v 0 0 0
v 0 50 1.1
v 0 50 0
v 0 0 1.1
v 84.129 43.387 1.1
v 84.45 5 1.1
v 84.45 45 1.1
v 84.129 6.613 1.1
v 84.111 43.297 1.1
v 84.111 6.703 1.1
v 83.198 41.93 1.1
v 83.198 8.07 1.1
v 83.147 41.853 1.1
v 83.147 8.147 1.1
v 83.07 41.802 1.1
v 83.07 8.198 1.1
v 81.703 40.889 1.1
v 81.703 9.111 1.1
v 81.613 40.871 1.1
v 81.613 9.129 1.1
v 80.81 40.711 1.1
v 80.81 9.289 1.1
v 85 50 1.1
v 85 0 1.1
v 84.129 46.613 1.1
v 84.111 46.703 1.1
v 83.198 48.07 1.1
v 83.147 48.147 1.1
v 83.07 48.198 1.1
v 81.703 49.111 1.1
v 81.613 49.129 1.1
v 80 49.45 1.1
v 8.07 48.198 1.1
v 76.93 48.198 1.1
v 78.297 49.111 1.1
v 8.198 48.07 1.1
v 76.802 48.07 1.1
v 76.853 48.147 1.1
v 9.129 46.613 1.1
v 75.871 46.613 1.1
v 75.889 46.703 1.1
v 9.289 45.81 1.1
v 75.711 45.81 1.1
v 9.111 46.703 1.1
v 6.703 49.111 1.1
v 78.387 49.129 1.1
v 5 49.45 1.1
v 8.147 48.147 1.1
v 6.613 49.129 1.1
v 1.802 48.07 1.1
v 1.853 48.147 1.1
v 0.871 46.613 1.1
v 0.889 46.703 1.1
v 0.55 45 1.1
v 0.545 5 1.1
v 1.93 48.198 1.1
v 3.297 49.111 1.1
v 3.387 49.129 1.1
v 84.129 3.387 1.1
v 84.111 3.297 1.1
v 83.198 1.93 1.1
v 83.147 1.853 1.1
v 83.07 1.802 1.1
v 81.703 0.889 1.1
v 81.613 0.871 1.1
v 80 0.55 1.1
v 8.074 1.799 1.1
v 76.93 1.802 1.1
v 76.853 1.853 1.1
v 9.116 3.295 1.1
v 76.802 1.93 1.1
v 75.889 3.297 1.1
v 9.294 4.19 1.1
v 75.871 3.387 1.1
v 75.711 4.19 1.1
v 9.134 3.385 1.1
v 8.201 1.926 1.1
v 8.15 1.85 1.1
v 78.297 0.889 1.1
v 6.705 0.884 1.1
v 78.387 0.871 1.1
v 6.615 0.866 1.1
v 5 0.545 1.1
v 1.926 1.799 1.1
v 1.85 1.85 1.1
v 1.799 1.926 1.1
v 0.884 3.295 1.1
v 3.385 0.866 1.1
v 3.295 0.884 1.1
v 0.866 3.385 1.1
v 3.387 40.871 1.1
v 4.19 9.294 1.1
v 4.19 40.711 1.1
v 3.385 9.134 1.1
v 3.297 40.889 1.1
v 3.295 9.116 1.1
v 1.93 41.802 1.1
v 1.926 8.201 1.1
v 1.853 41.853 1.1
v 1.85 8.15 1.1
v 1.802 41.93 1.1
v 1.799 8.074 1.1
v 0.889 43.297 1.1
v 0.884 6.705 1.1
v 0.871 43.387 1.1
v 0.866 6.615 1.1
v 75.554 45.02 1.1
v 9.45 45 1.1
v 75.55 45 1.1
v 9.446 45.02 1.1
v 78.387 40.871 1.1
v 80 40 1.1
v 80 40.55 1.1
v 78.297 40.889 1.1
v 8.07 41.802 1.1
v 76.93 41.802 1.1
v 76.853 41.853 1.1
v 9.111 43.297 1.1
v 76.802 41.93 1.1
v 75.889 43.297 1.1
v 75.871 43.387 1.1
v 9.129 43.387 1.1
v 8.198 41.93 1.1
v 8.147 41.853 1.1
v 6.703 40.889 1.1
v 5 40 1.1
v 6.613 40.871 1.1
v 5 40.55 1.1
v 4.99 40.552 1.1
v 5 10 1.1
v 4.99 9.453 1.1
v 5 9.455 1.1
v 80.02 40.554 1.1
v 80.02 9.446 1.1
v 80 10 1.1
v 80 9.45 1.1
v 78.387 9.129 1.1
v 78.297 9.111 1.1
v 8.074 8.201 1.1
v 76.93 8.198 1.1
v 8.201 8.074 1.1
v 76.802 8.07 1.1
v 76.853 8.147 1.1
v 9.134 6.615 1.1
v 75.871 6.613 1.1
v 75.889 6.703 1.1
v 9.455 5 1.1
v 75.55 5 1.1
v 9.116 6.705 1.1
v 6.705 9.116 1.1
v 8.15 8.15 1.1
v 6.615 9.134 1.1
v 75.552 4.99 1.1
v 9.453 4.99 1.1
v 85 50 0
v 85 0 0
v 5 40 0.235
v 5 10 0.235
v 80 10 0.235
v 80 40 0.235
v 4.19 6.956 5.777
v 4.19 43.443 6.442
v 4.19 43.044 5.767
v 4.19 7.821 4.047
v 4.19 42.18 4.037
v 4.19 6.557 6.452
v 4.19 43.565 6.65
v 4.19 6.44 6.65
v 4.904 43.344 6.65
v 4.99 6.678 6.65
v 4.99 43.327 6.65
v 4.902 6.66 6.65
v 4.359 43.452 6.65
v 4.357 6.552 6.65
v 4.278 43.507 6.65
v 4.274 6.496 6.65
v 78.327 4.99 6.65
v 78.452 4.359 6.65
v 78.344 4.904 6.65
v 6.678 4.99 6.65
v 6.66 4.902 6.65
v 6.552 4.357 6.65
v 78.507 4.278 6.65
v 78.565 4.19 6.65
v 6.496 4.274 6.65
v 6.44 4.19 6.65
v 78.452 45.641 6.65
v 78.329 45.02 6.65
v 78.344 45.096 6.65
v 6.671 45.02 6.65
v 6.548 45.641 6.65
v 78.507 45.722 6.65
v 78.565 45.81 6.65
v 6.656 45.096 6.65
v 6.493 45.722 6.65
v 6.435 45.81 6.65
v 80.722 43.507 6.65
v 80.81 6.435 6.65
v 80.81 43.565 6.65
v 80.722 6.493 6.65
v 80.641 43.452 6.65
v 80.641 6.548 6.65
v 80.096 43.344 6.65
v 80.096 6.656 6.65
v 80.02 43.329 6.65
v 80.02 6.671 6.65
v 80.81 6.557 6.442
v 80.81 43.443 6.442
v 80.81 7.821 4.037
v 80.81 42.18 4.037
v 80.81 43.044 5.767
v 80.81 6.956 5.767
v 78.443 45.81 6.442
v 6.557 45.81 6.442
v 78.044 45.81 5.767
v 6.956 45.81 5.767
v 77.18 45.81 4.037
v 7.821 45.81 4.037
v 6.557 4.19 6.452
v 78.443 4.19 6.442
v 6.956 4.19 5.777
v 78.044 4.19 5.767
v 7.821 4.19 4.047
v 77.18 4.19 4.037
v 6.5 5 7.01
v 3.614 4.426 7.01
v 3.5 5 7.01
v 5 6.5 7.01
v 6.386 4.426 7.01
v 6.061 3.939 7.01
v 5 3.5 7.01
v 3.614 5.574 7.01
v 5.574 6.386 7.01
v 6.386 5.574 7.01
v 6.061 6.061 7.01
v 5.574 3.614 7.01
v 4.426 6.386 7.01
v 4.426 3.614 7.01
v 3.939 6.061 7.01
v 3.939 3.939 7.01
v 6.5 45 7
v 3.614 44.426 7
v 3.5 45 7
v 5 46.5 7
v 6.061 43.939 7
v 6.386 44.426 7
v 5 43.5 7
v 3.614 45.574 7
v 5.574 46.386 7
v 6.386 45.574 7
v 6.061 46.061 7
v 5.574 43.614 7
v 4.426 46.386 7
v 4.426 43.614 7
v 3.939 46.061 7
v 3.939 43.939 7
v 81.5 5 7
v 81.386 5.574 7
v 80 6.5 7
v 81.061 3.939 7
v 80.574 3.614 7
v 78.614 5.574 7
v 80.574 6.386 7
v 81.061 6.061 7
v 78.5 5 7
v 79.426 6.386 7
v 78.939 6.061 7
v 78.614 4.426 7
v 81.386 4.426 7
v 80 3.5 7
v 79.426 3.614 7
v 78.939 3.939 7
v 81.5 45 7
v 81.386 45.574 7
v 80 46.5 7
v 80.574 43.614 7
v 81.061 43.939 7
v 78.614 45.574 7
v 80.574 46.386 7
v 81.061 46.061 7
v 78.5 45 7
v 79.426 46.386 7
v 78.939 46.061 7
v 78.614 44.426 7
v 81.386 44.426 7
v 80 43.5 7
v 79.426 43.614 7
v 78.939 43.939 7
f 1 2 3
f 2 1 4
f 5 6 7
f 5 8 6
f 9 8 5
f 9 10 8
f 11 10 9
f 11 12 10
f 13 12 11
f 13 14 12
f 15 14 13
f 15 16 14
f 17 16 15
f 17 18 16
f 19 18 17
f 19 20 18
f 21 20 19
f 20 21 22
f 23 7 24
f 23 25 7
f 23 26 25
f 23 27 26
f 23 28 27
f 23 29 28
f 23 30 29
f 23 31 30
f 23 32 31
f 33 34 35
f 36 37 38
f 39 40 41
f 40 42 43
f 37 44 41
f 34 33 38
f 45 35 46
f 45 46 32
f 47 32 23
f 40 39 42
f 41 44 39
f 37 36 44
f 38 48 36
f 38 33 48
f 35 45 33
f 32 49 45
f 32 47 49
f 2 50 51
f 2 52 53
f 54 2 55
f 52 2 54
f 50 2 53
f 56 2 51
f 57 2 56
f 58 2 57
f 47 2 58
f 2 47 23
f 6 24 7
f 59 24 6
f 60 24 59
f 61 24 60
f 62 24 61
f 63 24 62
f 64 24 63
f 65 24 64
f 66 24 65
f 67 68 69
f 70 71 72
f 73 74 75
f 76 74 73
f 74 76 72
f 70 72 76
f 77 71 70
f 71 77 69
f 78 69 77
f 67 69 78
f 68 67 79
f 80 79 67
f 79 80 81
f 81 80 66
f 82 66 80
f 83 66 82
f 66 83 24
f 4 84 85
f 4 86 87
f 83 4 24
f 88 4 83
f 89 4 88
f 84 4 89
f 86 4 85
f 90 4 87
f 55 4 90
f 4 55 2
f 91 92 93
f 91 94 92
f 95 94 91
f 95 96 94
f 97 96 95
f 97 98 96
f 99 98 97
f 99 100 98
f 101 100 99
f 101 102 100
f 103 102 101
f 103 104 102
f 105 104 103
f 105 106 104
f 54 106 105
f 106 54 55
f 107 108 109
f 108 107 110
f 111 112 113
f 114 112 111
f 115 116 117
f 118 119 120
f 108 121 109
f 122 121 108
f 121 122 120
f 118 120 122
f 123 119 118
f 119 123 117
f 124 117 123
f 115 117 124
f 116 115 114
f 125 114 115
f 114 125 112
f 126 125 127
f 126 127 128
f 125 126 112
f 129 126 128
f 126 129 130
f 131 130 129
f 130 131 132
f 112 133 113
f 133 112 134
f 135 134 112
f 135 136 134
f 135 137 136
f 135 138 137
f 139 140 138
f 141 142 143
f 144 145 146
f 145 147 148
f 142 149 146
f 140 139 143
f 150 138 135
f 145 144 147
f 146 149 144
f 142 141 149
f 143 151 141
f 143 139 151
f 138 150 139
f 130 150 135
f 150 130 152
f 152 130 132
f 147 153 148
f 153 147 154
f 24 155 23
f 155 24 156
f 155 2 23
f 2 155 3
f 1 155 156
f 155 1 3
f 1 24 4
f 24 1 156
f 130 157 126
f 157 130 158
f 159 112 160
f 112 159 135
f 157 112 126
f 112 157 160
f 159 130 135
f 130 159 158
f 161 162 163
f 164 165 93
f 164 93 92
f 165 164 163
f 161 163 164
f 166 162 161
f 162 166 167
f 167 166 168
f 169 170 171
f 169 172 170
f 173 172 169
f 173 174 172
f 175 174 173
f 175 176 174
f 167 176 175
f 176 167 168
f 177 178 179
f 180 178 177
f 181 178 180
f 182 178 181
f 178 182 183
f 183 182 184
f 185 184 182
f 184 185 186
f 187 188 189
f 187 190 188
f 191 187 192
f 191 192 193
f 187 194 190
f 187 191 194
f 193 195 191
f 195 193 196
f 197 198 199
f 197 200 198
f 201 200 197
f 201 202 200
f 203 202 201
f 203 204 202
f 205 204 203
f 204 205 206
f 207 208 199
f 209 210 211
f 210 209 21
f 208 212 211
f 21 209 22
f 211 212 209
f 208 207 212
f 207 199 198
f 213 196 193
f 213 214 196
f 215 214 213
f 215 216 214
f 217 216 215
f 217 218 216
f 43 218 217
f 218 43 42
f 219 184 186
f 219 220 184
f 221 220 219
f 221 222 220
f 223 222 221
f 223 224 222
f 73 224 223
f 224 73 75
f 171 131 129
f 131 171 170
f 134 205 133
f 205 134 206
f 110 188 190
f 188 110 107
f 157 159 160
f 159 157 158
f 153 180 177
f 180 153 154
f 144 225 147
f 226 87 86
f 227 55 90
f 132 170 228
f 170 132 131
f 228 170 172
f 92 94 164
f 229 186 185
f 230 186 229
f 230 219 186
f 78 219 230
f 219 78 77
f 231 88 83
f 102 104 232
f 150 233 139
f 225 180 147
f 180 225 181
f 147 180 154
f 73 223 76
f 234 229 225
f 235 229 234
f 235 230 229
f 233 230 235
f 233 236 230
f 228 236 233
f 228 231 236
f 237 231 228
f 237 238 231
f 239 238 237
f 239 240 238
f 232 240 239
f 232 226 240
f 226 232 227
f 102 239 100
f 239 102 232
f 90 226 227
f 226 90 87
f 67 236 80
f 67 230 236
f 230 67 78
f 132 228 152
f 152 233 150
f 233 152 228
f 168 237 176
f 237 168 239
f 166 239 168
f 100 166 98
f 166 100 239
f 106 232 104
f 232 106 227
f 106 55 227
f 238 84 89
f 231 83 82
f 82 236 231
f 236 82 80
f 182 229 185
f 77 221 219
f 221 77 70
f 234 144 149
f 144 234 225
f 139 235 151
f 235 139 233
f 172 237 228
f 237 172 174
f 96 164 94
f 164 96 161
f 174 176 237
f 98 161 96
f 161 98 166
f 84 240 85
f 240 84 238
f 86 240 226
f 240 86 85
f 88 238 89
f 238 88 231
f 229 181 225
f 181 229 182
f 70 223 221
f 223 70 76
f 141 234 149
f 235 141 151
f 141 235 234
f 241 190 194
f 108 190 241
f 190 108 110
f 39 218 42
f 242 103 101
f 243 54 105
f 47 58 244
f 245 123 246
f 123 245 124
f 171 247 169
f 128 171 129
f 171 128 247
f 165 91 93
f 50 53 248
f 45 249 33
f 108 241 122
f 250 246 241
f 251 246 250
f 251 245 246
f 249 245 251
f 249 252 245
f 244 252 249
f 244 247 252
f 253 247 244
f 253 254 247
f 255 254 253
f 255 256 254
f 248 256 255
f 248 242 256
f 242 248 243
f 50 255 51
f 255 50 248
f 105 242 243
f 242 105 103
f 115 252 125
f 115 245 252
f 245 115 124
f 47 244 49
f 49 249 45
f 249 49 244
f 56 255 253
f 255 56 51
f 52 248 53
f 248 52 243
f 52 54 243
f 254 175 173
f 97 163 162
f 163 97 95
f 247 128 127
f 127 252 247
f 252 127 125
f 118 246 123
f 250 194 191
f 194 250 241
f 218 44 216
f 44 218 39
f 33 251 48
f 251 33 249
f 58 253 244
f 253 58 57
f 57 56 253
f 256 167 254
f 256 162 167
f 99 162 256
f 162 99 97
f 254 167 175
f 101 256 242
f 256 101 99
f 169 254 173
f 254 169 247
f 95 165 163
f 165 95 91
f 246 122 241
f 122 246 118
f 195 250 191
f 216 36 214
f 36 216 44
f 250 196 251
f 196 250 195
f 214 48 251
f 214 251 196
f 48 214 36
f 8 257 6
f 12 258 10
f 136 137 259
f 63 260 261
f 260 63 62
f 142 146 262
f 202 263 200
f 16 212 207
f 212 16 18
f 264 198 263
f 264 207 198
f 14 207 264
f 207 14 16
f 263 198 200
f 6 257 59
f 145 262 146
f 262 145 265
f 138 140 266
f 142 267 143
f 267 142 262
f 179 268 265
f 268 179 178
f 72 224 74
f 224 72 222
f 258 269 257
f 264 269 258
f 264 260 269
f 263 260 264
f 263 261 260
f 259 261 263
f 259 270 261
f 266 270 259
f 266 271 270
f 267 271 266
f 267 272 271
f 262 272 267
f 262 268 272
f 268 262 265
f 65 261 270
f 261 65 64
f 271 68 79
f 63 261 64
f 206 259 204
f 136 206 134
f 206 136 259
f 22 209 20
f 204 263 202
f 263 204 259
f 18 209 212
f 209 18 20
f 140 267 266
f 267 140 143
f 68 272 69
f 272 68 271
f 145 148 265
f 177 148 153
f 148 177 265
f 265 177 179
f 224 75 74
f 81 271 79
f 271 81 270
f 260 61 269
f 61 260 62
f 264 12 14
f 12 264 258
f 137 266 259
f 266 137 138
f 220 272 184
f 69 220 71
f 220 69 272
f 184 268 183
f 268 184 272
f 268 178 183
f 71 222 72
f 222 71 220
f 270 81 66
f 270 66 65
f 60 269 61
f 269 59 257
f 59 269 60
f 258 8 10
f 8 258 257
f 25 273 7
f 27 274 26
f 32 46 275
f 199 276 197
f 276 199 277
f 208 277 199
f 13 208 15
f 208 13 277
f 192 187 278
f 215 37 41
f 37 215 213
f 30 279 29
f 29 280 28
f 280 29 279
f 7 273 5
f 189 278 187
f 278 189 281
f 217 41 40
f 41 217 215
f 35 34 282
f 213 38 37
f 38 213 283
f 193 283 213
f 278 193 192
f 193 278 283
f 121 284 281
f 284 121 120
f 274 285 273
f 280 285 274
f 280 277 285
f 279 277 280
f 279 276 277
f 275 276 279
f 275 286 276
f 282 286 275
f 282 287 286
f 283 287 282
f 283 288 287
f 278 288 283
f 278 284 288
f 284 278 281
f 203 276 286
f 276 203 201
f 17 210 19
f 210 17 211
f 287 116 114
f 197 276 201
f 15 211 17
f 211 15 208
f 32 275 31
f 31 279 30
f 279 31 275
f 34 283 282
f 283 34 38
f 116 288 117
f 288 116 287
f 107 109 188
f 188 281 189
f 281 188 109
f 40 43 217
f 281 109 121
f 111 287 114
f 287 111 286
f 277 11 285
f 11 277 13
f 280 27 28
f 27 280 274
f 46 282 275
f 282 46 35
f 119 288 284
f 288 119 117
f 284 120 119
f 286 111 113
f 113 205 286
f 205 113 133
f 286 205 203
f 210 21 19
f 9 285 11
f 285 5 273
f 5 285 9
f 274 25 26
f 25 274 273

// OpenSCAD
length = 85;
length_in = 75;
width_in = 30;
width = width_in + 2*10;
height = 1.1;
height_sp = 7;
offsetx = (length-length_in)/2;
offsety = (width-width_in)/2;

union()
{
    translate([offsety/2, offsety/2, 0.01]) cylinder(r1=offsety/2, r2 = 1.5, h=height_sp);
    translate([offsety/2, width-offsety/2]) cylinder(r1=offsety/2, r2 = 1.5, h=height_sp);
    translate([length-offsety/2, offsety/2]) cylinder(r1=offsety/2, r2 = 1.5, h=height_sp);
    translate([length-offsety/2, width-offsety/2]) cylinder(r1=offsety/2, r2 = 1.5, h=height_sp);
    difference()
    {
        cube([length, width, height ]);
        translate([offsetx, offsety, +0.2+0.03])  cube([length_in, width_in, 2+height]);
    };
    difference()
    {
        translate([offsetx-0.81, offsety-offsety/2-0.81, +0.05]) cube([length_in+2*0.81, width_in+offsety+2*0.81, height*6 ]);
        translate([offsetx-0.01, offsety-offsety/2-0.01, +0.2+0.035])  cube([length_in+0.03, width_in+offsety+0.03, 2+height*6]);
        
    };
}
